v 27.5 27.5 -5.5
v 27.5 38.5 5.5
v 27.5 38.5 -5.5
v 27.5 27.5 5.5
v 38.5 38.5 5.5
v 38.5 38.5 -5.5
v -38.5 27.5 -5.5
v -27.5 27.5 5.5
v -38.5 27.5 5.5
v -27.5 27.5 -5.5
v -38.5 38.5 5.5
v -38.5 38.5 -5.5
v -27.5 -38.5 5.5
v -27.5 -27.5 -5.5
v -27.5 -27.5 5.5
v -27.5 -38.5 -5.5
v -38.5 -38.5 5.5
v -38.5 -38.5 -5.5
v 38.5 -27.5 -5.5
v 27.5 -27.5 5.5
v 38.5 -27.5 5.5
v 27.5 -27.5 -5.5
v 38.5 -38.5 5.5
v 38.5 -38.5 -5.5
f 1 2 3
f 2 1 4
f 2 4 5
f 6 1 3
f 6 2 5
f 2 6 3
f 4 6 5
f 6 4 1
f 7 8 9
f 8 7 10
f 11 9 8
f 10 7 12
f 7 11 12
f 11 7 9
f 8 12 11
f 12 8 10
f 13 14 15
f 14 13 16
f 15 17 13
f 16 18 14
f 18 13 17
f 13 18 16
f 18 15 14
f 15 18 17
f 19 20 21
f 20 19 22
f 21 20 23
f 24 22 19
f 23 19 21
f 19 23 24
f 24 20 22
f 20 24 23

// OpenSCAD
// file: def.scad
block_size_3 = 19;
block_size_4 = 16;
block_size_5 = 14;
block_size_6 = 12.5;
block_size_7 = 11;
block_size_8 = 10;

inf = 1000;

round_radius = 1;
sticker_margin = 2.5;
sticker_round_radius = 0.75;

module _block(size) {
    minkowski() {
        cube([size - round_radius * 2, size - round_radius * 2, size - round_radius * 2], center = true);
        sphere(r = round_radius, $fn = 24);
    }
}

module _selector_0(size) {
    cube([size - 0.2, size - 0.2, size - 0.2], center = true);
}

module _sticker(size) {
    minkowski() {
        cube([size - sticker_margin * 2, size - sticker_margin * 2, 0.1], center = true);
        cylinder(r = sticker_round_radius, h = 0.1, $fn = 24);
    }
}

module _selector_corner_cw(size) {
    difference() {
        cube([size, size, size], center = true);
        rotate([0, -45, 0])
            translate([-inf, -inf, 0])
                cube([inf * 2, inf * 2, inf]);
        rotate([90, 0, 45])
            translate([-inf, -inf, 0])
                cube([inf * 2, inf * 2, inf]);
    }
}

module _selector_corner_ccw(size) {
    difference() {
        cube([size, size, size], center = true);
        rotate([45, 0, 0])
            translate([-inf, -inf, 0])
                cube([inf * 2, inf * 2, inf]);
        rotate([0, -90, -45])
            translate([-inf, -inf, 0])
                cube([inf * 2, inf * 2, inf]);
    }
}

module _selector_edge_cw(size) {
    difference() {
        cube([size, size, size], center = true);
        rotate([90, 0, 45])
            translate([-inf, -inf, 0])
                cube([inf * 2, inf * 2, inf]);
    }
}

module _selector_edge_ccw(size) {
    difference() {
        cube([size, size, size], center = true);
        rotate([0, -90, -45])
            translate([-inf, -inf, 0])
                cube([inf * 2, inf * 2, inf]);
    }
}
// main file
include <def.scad>

for (deg = [0 : 90 : 270])
    rotate([0, 0, deg])
        translate([block_size_7 * 3, block_size_7 * 3, 0])
            _selector_edge_cw(block_size_7);
